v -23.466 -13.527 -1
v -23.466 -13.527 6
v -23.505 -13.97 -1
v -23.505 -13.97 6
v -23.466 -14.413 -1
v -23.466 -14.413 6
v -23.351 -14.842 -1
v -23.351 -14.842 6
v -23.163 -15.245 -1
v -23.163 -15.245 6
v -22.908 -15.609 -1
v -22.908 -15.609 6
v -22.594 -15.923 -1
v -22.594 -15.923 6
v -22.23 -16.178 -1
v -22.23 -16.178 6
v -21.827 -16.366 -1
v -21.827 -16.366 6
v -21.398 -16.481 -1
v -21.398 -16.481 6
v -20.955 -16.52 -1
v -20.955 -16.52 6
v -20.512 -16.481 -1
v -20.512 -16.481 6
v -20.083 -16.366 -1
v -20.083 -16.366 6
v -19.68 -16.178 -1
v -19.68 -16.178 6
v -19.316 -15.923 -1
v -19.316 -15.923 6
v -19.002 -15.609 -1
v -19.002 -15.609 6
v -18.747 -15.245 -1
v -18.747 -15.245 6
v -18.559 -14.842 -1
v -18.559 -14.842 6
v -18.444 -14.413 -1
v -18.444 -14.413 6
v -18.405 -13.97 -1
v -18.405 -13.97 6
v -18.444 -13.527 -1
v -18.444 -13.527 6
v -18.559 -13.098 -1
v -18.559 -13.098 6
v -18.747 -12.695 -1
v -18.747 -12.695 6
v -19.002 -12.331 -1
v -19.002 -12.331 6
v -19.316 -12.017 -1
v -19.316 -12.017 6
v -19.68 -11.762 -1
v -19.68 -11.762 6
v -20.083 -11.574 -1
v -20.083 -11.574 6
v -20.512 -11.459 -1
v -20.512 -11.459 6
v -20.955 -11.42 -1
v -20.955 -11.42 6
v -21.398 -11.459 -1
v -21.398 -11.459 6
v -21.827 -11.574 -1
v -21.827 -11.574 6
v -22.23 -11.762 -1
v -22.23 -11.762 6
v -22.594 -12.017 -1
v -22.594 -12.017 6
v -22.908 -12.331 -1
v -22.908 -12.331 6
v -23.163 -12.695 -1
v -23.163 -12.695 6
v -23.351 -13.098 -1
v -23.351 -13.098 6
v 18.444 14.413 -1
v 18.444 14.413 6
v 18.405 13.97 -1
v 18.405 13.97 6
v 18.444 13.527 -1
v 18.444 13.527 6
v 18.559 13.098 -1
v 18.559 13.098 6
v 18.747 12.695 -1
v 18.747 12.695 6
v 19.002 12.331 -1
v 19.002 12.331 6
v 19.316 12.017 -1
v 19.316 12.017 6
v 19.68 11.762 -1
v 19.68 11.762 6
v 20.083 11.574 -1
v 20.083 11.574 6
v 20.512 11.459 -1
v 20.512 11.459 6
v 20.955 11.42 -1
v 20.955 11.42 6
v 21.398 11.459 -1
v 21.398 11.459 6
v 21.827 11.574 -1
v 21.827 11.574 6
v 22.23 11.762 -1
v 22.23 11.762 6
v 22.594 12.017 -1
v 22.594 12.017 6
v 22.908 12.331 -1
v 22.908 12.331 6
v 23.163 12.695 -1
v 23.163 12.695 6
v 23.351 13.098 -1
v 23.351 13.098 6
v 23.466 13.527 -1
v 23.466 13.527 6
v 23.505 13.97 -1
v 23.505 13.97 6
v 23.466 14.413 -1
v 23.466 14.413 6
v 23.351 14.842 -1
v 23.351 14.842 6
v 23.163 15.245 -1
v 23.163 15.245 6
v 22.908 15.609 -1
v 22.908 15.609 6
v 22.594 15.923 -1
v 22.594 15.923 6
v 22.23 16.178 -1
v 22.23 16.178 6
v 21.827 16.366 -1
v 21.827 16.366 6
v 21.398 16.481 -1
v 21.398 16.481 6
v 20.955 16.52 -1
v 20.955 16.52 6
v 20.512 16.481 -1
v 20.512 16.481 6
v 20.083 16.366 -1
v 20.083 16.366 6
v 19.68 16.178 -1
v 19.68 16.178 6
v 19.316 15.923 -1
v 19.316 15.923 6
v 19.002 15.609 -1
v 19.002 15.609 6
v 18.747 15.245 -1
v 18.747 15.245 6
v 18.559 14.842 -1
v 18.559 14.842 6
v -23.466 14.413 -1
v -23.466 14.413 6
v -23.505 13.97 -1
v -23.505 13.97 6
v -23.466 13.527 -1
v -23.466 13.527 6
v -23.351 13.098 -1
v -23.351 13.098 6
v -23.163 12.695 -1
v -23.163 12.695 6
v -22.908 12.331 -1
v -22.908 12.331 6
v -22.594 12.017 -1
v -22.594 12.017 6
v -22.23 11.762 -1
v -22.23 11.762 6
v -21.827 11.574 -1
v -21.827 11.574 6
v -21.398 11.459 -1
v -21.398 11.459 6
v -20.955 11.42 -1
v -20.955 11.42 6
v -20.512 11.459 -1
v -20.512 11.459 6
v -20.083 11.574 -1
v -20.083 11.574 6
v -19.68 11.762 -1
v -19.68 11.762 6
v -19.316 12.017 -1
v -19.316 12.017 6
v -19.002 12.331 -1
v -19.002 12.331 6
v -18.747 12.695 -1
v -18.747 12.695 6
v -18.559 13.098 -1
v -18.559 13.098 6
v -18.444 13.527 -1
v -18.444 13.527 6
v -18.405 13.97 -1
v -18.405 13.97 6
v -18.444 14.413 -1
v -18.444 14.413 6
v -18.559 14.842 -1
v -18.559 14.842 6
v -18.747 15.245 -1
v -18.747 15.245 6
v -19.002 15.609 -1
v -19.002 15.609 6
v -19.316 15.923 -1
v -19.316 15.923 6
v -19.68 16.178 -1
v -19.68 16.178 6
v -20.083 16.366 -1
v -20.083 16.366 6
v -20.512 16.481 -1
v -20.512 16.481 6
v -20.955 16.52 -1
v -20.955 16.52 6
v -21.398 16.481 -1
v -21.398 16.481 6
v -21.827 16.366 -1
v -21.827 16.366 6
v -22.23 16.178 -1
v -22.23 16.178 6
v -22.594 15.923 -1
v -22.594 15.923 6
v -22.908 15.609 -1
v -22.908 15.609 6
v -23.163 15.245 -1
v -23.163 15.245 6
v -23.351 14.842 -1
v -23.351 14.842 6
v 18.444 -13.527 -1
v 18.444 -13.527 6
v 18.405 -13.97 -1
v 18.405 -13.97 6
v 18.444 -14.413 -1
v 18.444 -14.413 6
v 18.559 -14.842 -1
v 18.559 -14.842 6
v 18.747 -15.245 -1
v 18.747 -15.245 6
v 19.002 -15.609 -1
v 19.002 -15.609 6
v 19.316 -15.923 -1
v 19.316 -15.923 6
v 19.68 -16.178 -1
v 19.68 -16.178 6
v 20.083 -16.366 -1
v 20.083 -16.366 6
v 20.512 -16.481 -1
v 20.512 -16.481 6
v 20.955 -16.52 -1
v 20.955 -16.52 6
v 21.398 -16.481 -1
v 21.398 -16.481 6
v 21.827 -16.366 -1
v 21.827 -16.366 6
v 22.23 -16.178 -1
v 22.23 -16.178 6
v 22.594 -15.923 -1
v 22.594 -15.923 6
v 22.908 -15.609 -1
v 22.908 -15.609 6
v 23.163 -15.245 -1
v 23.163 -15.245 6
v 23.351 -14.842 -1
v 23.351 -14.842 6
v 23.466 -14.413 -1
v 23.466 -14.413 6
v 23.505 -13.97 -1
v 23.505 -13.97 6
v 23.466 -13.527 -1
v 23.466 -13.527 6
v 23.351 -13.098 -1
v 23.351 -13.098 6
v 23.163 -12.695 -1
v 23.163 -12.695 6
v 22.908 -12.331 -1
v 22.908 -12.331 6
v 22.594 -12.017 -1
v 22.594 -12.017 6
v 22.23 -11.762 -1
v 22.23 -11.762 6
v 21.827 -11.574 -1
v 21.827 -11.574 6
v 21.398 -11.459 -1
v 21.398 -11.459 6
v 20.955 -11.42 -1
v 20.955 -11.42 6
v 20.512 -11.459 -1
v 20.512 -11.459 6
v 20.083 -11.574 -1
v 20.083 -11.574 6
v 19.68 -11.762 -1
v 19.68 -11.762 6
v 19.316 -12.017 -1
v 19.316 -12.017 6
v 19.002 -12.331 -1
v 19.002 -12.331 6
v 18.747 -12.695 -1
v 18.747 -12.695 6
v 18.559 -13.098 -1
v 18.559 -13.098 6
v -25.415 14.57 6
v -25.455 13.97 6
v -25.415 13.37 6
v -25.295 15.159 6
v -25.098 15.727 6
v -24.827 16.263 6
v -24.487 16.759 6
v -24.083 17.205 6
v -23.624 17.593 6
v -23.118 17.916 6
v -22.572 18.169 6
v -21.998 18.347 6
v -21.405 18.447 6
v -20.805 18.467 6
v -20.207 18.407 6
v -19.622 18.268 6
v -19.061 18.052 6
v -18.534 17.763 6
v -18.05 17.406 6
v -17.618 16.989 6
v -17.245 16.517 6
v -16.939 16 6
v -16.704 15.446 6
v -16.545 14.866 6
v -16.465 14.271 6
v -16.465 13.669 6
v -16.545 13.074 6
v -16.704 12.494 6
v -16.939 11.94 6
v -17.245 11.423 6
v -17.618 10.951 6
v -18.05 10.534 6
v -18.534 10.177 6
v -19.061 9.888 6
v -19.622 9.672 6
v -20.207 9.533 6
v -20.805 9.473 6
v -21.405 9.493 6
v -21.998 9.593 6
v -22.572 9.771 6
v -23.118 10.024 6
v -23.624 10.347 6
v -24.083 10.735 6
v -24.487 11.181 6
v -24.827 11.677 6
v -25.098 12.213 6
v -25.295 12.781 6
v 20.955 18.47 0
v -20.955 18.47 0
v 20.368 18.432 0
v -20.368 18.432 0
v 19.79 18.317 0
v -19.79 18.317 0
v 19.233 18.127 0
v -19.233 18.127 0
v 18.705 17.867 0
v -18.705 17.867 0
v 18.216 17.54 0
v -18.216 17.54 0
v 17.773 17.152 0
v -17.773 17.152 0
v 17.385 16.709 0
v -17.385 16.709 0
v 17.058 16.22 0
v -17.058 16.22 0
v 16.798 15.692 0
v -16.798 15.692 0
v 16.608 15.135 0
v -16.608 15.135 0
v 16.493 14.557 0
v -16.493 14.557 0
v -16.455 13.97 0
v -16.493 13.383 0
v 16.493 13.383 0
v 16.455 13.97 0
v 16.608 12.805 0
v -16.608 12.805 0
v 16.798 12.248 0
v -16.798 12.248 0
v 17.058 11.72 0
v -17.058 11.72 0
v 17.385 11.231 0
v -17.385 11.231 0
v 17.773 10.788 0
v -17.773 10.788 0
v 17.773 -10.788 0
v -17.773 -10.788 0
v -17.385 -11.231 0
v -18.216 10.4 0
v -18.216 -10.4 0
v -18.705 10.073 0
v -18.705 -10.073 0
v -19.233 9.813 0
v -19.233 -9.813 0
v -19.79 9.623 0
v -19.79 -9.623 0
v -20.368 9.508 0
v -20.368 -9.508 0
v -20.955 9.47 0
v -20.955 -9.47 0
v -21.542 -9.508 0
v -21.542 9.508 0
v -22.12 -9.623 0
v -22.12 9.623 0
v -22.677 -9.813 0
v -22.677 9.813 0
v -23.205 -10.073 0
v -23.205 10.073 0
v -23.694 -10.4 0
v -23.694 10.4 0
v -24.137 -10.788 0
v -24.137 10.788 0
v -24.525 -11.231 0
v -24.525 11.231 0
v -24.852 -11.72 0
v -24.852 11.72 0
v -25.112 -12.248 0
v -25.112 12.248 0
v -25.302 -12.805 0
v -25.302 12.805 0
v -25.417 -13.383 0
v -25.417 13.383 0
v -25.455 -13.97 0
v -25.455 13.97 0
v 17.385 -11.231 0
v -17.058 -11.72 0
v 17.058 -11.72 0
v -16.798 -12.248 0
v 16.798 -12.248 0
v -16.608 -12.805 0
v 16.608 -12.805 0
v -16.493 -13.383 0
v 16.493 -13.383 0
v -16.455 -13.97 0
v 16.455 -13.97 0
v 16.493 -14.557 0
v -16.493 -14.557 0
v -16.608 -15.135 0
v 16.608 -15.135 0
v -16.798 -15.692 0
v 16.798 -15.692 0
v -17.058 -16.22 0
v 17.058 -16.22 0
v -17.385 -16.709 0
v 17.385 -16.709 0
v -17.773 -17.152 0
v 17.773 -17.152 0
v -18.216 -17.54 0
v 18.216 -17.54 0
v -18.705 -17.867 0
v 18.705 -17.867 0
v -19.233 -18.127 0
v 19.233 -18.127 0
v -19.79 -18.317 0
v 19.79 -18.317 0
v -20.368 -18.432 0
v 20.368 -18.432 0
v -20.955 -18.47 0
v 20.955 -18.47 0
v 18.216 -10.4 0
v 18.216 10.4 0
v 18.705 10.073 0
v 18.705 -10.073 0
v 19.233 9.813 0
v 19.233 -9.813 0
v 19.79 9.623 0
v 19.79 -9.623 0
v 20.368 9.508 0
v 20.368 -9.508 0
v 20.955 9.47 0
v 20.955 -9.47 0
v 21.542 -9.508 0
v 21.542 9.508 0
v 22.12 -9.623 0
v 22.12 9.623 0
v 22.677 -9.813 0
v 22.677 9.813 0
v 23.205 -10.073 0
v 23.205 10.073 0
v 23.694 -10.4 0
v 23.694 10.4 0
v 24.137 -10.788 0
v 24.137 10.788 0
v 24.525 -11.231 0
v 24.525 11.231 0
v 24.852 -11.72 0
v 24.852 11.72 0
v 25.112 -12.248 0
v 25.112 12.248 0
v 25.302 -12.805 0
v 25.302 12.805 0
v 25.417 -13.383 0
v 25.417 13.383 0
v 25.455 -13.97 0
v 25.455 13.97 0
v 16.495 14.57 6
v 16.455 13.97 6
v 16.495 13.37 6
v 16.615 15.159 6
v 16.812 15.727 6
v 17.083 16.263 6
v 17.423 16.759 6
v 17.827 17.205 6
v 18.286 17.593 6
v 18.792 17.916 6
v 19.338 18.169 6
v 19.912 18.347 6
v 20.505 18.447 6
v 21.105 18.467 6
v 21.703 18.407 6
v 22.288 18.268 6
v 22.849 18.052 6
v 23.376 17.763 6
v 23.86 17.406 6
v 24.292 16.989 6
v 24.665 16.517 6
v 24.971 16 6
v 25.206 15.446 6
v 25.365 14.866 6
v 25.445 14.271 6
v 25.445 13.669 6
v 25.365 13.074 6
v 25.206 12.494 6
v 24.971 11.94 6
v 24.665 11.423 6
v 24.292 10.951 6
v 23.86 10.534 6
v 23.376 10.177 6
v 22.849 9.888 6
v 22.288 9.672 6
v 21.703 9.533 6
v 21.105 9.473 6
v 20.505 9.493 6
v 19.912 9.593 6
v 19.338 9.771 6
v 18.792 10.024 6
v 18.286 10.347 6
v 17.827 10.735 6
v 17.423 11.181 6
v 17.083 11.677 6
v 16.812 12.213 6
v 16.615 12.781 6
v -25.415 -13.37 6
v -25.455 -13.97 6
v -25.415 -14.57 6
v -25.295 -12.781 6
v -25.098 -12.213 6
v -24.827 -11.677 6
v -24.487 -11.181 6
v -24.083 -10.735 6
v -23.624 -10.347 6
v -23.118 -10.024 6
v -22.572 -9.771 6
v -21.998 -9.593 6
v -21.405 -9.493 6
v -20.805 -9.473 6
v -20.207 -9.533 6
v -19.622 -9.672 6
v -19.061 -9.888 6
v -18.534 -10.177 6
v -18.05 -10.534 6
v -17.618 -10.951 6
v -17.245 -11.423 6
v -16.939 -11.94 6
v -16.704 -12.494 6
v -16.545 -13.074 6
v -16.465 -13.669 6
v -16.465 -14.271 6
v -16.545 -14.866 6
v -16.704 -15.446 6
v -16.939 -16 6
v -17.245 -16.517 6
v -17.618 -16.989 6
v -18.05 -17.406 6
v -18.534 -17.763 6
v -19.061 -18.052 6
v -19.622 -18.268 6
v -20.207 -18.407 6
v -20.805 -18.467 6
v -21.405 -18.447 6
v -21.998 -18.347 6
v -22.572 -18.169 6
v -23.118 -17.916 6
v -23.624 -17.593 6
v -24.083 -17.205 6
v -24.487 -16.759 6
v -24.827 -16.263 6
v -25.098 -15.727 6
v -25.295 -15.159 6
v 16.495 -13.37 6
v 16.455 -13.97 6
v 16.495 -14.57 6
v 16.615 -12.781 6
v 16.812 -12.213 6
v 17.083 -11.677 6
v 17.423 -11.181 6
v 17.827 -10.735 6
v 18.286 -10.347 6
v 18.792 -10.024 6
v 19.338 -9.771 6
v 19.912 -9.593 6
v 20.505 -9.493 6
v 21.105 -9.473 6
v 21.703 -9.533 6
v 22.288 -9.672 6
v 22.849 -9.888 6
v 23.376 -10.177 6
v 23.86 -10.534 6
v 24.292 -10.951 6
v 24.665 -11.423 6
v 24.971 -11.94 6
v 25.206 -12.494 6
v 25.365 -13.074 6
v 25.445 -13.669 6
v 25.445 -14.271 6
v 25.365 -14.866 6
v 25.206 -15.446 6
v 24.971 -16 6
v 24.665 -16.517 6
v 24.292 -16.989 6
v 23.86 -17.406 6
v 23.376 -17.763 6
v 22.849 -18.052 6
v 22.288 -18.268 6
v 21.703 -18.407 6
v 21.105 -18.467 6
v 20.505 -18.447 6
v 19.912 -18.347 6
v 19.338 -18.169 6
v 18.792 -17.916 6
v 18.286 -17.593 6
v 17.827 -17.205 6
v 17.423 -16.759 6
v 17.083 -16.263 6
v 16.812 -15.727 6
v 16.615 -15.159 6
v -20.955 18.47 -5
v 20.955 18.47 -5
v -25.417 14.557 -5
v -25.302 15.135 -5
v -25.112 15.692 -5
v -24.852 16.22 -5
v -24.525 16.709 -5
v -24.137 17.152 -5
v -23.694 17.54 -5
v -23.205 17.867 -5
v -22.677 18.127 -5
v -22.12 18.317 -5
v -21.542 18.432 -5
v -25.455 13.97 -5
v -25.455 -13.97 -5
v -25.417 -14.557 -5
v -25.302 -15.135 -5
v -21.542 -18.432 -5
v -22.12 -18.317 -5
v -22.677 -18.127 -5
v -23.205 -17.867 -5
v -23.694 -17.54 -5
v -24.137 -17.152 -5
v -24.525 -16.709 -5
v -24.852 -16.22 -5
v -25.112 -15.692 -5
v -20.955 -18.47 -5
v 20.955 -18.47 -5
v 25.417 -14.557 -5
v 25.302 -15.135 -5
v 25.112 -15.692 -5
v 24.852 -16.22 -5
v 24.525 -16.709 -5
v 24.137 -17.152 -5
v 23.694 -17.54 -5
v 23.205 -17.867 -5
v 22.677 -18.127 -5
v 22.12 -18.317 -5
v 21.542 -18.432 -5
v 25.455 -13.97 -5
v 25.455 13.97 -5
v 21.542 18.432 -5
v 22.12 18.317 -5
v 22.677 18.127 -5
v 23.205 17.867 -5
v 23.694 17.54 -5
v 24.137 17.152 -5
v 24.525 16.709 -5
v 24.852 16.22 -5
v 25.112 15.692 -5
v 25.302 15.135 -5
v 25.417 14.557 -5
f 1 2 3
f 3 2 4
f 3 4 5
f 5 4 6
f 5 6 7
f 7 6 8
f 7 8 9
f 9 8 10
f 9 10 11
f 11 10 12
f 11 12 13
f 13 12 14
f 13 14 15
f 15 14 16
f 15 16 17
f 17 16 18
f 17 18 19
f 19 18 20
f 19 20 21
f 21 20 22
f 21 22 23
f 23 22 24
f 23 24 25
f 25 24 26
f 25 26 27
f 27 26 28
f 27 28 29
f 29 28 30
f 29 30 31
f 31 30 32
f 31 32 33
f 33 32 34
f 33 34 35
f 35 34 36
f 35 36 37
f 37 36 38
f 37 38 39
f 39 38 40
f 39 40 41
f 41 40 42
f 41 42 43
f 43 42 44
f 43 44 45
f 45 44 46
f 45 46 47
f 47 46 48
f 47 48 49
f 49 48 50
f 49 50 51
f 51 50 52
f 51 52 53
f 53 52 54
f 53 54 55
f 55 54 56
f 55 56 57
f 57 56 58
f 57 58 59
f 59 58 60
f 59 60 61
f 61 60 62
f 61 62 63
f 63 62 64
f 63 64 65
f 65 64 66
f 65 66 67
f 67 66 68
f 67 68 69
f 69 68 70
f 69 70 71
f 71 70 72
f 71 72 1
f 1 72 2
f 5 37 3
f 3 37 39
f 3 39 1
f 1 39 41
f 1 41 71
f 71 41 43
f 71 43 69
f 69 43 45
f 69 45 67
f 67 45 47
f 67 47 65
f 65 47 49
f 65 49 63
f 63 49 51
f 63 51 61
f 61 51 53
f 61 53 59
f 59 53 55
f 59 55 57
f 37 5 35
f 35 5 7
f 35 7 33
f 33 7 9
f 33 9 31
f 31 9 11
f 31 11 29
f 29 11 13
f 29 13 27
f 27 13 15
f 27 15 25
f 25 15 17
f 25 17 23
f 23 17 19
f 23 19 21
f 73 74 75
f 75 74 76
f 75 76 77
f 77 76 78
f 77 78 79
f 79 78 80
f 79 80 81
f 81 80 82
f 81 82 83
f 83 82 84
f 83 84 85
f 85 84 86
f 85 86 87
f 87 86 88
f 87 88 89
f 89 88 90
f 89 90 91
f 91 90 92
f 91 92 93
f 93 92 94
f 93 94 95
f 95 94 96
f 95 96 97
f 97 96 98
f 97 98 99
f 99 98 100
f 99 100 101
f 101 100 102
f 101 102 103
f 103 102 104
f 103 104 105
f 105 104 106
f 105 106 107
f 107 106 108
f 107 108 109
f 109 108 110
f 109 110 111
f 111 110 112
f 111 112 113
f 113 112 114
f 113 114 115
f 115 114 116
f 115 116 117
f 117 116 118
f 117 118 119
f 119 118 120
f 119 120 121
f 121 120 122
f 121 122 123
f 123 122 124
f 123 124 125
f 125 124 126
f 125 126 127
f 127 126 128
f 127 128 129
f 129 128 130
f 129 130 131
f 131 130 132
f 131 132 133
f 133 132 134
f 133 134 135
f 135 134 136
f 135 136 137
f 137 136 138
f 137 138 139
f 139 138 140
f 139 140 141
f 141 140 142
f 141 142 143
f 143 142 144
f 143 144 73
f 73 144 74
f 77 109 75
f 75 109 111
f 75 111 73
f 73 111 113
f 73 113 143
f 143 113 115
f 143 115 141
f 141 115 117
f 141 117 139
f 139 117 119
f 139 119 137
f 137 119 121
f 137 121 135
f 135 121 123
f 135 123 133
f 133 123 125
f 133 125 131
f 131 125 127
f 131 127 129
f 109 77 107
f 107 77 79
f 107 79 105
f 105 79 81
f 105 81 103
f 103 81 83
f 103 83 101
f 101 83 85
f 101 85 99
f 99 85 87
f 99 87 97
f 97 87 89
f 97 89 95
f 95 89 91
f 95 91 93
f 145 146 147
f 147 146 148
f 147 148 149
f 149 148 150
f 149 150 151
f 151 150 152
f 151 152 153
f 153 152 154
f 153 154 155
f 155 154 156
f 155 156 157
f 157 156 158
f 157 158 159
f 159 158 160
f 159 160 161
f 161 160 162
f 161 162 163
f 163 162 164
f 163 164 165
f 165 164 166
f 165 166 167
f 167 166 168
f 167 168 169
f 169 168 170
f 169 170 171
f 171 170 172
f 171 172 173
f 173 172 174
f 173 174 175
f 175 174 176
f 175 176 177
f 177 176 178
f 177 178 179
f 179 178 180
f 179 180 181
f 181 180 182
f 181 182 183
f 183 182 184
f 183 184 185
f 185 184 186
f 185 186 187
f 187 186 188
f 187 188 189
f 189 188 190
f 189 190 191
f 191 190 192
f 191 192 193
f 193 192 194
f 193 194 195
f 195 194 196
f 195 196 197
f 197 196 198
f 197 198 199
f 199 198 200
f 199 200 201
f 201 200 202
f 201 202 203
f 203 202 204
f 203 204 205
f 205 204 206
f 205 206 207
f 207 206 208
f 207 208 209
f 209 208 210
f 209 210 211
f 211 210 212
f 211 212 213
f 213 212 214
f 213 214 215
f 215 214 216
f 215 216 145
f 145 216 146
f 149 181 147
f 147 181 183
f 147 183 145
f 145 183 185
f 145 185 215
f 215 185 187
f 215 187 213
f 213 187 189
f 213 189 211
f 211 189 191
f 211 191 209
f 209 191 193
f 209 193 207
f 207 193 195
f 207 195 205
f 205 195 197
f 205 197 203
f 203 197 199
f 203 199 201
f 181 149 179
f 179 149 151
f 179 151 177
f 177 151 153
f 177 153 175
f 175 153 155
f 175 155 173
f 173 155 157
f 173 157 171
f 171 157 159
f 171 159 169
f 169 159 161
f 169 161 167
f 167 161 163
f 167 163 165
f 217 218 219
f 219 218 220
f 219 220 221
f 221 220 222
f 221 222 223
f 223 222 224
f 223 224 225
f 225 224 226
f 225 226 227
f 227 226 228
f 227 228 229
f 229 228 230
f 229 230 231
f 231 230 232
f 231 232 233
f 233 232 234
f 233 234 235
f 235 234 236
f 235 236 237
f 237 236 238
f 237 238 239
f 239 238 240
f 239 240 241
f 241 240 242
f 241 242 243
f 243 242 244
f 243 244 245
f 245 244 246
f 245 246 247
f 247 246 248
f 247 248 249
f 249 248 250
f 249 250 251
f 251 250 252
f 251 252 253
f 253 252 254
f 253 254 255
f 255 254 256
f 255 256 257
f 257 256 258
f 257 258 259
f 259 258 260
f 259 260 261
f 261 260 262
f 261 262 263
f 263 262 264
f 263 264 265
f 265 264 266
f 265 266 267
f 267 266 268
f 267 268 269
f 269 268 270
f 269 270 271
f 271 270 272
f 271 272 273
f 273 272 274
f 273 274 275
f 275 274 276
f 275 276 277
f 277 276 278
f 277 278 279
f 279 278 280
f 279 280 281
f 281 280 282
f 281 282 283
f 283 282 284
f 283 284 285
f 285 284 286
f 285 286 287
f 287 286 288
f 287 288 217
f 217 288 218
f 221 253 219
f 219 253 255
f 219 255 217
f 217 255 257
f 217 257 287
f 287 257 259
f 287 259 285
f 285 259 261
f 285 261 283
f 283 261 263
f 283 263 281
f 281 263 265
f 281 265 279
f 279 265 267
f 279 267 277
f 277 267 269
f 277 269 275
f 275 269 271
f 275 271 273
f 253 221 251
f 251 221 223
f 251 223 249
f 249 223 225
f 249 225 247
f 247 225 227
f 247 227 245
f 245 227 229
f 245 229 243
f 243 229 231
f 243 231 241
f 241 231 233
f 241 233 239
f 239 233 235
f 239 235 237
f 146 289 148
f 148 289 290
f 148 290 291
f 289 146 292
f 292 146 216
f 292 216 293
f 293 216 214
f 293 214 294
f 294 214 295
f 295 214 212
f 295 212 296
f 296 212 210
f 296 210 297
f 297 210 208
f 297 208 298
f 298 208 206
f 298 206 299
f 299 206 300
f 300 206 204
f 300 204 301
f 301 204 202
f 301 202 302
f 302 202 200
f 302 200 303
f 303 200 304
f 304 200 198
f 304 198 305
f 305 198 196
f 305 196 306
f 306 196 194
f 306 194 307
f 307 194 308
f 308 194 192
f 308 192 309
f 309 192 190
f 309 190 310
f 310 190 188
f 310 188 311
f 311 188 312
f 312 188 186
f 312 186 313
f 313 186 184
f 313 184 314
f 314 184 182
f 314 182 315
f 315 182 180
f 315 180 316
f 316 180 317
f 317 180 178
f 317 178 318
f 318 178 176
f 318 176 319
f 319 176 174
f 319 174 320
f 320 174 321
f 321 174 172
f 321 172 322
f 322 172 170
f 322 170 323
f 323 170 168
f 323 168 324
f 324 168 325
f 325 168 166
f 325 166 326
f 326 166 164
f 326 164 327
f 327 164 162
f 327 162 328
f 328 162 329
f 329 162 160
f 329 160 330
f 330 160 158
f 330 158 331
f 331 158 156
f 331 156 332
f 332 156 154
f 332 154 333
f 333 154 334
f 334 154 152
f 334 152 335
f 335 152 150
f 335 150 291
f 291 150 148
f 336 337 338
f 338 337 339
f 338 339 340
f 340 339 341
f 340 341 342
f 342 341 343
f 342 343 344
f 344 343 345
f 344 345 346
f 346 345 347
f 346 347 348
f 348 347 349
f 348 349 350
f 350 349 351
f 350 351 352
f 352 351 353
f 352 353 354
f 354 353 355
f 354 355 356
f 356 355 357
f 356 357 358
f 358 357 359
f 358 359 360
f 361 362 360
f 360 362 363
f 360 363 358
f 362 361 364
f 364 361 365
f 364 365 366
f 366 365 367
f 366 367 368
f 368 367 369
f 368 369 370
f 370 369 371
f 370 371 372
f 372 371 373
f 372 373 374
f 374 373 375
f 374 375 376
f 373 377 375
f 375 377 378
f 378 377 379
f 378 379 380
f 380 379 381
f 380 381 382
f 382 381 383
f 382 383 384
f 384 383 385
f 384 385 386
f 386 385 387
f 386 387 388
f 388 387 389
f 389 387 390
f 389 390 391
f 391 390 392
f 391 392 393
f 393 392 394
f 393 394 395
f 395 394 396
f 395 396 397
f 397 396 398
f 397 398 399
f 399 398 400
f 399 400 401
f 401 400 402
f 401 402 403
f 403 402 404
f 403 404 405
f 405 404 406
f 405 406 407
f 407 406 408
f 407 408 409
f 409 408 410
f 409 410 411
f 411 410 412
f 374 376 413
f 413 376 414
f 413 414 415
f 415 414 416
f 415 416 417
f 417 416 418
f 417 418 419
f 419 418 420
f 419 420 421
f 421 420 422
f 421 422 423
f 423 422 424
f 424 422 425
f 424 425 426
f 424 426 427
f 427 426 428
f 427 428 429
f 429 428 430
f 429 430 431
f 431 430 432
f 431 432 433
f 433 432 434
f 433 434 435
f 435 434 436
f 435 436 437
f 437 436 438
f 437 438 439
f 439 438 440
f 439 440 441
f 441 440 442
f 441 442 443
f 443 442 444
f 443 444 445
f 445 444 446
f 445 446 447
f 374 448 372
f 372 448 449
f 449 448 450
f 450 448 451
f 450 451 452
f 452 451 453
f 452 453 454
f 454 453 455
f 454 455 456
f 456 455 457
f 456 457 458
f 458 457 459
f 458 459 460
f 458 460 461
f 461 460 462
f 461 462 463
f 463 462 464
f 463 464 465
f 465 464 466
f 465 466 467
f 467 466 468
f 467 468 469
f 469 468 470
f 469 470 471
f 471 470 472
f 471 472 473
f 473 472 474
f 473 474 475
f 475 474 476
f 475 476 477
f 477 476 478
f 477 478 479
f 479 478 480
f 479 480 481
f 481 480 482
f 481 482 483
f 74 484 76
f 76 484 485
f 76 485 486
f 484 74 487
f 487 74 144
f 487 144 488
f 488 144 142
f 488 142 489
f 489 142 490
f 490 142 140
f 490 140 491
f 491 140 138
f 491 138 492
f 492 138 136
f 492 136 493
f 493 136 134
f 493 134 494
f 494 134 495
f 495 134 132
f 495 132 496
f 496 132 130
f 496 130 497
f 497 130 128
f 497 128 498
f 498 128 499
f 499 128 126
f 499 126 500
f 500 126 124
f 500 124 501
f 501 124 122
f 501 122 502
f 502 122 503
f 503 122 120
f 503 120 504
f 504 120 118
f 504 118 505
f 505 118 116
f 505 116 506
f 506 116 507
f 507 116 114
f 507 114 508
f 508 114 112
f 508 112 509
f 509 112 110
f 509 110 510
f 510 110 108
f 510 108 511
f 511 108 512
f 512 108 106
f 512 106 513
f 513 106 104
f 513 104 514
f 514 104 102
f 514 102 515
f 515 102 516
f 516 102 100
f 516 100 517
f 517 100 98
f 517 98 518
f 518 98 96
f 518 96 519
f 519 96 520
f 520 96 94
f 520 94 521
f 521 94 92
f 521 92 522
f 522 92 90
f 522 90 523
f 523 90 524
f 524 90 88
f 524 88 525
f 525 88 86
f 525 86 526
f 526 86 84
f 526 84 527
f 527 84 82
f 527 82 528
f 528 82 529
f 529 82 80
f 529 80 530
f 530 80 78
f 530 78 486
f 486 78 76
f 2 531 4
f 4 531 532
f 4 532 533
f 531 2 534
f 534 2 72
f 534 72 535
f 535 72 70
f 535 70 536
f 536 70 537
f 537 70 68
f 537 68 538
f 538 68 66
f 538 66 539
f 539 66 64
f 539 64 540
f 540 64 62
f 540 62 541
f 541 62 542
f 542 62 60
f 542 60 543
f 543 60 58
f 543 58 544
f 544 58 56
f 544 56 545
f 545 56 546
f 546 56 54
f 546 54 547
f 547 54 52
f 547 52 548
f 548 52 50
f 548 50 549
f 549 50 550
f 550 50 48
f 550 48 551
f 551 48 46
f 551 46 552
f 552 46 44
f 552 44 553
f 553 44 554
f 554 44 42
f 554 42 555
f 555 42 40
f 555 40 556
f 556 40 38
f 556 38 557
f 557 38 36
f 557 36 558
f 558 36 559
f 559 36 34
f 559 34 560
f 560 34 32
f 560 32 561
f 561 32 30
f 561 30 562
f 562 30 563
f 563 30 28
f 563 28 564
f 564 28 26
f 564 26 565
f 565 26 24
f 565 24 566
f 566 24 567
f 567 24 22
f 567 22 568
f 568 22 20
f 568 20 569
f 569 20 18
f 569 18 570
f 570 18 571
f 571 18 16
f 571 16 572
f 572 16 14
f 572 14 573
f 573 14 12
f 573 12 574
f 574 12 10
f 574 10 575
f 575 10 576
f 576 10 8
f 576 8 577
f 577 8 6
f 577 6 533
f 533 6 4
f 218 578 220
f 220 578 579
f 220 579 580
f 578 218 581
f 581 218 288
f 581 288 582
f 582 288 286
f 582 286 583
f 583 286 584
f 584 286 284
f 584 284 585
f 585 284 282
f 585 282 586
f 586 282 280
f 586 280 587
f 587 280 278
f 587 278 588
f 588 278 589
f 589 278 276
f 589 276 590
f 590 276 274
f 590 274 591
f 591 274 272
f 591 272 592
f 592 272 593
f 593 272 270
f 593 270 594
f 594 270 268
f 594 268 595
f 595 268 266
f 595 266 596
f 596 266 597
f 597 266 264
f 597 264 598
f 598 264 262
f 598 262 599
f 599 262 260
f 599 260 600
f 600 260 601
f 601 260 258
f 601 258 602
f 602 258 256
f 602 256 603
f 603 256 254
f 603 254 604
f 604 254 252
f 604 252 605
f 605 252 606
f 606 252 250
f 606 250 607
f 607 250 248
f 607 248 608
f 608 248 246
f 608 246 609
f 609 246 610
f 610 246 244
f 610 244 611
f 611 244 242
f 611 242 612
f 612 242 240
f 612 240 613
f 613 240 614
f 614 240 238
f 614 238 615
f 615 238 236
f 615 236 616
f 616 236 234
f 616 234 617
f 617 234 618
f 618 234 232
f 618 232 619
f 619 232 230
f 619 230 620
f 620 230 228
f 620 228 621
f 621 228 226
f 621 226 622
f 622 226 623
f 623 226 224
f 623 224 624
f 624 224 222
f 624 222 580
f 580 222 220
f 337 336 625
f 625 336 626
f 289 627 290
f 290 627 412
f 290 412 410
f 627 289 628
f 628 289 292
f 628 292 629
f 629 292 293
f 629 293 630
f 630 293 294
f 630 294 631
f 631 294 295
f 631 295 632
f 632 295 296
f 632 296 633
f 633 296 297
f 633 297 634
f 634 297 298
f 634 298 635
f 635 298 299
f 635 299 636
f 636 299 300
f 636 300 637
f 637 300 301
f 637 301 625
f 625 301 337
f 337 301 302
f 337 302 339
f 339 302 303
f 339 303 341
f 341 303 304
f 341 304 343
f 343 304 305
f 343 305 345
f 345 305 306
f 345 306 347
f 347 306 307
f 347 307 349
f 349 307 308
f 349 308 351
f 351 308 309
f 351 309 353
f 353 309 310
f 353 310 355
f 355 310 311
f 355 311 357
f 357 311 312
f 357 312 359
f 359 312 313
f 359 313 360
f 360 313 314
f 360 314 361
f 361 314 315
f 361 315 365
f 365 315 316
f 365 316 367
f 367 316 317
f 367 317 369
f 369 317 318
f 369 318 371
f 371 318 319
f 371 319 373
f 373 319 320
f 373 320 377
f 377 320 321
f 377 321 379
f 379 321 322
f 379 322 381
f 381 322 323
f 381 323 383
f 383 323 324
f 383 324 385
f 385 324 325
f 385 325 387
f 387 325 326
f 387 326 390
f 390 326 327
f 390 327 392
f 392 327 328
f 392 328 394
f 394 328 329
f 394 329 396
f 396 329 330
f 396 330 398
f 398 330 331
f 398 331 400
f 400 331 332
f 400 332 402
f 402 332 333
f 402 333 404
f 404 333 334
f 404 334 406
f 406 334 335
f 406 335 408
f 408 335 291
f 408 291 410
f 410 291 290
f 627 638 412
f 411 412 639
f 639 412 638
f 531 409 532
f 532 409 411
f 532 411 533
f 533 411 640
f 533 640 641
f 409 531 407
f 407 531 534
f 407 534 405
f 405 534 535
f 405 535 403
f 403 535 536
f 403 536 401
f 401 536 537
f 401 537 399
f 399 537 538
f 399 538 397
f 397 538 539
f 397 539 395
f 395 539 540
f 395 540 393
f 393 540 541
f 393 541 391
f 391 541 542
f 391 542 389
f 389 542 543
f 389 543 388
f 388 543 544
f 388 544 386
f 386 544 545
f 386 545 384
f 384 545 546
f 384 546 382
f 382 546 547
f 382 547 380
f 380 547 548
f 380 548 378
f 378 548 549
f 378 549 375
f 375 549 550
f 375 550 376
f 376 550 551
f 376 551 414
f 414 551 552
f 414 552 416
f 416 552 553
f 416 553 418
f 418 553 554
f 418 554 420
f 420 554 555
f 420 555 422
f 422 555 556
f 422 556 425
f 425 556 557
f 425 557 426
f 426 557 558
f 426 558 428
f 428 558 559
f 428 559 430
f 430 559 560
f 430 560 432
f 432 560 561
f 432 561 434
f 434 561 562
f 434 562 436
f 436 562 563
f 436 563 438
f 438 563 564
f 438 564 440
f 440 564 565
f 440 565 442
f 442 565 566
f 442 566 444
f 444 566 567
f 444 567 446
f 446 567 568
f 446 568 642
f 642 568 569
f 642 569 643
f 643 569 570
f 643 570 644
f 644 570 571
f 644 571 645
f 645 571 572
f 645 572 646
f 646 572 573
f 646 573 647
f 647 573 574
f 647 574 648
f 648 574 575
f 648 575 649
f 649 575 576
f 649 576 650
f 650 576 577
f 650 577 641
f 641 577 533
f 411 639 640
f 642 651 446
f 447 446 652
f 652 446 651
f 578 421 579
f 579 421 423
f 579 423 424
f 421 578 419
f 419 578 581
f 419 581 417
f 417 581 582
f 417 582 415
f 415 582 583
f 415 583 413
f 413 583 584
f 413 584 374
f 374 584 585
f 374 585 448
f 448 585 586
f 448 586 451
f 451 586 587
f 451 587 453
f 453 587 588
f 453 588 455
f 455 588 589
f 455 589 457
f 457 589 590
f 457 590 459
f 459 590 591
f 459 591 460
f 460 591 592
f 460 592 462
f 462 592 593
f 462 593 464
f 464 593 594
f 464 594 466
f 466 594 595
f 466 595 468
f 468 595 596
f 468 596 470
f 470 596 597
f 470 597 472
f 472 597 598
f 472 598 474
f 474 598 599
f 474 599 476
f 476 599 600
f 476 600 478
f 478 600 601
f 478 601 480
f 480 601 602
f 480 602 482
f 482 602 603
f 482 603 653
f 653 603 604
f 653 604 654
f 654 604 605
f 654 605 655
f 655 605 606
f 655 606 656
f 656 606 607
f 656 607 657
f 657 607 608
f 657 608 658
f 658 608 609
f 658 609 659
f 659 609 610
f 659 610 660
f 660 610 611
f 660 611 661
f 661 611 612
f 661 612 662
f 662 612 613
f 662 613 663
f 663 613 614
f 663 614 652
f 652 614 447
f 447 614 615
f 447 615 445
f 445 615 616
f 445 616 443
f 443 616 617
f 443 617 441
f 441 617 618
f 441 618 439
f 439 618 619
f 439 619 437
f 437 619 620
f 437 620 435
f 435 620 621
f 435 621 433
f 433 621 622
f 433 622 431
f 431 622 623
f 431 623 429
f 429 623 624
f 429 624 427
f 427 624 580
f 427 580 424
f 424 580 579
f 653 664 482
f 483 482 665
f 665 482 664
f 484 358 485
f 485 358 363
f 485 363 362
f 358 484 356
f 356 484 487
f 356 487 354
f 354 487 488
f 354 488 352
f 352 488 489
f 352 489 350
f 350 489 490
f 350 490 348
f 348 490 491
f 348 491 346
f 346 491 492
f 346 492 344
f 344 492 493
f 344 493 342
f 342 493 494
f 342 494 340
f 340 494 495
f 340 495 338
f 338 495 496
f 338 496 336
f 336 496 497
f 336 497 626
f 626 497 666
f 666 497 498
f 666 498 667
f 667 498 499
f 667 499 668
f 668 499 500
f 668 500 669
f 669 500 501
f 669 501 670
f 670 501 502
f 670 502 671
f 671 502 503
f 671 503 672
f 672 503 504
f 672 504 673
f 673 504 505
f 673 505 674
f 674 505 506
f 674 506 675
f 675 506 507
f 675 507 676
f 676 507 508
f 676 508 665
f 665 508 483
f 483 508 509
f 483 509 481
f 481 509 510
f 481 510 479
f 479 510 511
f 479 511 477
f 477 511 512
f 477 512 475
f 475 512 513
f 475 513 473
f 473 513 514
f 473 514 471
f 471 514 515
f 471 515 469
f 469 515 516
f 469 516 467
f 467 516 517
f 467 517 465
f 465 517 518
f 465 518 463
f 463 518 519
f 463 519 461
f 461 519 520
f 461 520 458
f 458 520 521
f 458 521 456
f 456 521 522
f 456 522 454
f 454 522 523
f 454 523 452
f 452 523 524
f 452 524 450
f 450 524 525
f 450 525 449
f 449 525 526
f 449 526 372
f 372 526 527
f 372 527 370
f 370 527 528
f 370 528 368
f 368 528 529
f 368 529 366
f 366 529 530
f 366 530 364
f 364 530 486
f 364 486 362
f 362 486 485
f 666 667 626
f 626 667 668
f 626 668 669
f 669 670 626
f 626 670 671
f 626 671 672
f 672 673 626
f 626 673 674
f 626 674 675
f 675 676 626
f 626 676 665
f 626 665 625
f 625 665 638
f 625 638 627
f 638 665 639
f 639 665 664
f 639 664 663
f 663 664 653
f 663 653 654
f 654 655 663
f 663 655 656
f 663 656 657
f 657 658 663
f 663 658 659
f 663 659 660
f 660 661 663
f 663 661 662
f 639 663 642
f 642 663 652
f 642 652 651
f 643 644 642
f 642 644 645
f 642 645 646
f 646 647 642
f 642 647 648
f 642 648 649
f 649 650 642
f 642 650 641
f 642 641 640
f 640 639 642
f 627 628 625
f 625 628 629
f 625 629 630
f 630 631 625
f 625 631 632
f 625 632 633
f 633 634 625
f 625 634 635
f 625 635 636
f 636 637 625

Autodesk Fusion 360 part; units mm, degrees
sketch "Sketch1" plane through (0, 0, 0) normal (0, 0, 1) x (1, 0, 0)
  line L0 (25.455, -18.47) -> (-25.455, -18.47)
  line L1 (-25.455, -18.47) -> (-25.455, 18.47)
  line L2 (-25.455, 18.47) -> (25.455, 18.47)
  line L3 (25.455, 18.47) -> (25.455, -18.47)
  line L4 (25.455, -18.47) -> (-25.455, 18.47) construction
  line L5 (-25.455, -18.47) -> (25.455, 18.47) construction
  circle A0 centre (20.955, 13.97) radius 4.5
  circle A1 centre (20.955, 13.97) radius 2.55
  line L6 (0, 1.75) -> (0, 22.5)
  circle A2 centre (-20.955, 13.97) radius 2.55
  circle A3 centre (-20.955, 13.97) radius 4.5
  line L7 (1.75, 0) -> (22.5, 0)
  circle A4 centre (20.955, -13.97) radius 4.5
  circle A5 centre (20.955, -13.97) radius 2.55
  circle A6 centre (-20.955, -13.97) radius 4.5
  circle A7 centre (-20.955, -13.97) radius 2.55
  dimension "d8" = 5.1
  dimension "d9" = 9
  dimension "d10" = 41.91
  dimension "d11" = 27.94
extrude "Extrude1" add sketch "Sketch1" against normal blind 5 contours L0 L1 L2 L3 A0 A3 A4 A6 | A4 | A6 | A0 | A3 | A1 | A2 | A5 | A7
extrude "Extrude2" add sketch "Sketch1" along normal blind 6 contours A4 | A6 | A0 | A3 | A1 | A2 | A5 | A7
extrude "Extrude3" cut sketch "Sketch1" against normal blind 7 from surface at 6 contours A1 | A2 | A5 | A7
